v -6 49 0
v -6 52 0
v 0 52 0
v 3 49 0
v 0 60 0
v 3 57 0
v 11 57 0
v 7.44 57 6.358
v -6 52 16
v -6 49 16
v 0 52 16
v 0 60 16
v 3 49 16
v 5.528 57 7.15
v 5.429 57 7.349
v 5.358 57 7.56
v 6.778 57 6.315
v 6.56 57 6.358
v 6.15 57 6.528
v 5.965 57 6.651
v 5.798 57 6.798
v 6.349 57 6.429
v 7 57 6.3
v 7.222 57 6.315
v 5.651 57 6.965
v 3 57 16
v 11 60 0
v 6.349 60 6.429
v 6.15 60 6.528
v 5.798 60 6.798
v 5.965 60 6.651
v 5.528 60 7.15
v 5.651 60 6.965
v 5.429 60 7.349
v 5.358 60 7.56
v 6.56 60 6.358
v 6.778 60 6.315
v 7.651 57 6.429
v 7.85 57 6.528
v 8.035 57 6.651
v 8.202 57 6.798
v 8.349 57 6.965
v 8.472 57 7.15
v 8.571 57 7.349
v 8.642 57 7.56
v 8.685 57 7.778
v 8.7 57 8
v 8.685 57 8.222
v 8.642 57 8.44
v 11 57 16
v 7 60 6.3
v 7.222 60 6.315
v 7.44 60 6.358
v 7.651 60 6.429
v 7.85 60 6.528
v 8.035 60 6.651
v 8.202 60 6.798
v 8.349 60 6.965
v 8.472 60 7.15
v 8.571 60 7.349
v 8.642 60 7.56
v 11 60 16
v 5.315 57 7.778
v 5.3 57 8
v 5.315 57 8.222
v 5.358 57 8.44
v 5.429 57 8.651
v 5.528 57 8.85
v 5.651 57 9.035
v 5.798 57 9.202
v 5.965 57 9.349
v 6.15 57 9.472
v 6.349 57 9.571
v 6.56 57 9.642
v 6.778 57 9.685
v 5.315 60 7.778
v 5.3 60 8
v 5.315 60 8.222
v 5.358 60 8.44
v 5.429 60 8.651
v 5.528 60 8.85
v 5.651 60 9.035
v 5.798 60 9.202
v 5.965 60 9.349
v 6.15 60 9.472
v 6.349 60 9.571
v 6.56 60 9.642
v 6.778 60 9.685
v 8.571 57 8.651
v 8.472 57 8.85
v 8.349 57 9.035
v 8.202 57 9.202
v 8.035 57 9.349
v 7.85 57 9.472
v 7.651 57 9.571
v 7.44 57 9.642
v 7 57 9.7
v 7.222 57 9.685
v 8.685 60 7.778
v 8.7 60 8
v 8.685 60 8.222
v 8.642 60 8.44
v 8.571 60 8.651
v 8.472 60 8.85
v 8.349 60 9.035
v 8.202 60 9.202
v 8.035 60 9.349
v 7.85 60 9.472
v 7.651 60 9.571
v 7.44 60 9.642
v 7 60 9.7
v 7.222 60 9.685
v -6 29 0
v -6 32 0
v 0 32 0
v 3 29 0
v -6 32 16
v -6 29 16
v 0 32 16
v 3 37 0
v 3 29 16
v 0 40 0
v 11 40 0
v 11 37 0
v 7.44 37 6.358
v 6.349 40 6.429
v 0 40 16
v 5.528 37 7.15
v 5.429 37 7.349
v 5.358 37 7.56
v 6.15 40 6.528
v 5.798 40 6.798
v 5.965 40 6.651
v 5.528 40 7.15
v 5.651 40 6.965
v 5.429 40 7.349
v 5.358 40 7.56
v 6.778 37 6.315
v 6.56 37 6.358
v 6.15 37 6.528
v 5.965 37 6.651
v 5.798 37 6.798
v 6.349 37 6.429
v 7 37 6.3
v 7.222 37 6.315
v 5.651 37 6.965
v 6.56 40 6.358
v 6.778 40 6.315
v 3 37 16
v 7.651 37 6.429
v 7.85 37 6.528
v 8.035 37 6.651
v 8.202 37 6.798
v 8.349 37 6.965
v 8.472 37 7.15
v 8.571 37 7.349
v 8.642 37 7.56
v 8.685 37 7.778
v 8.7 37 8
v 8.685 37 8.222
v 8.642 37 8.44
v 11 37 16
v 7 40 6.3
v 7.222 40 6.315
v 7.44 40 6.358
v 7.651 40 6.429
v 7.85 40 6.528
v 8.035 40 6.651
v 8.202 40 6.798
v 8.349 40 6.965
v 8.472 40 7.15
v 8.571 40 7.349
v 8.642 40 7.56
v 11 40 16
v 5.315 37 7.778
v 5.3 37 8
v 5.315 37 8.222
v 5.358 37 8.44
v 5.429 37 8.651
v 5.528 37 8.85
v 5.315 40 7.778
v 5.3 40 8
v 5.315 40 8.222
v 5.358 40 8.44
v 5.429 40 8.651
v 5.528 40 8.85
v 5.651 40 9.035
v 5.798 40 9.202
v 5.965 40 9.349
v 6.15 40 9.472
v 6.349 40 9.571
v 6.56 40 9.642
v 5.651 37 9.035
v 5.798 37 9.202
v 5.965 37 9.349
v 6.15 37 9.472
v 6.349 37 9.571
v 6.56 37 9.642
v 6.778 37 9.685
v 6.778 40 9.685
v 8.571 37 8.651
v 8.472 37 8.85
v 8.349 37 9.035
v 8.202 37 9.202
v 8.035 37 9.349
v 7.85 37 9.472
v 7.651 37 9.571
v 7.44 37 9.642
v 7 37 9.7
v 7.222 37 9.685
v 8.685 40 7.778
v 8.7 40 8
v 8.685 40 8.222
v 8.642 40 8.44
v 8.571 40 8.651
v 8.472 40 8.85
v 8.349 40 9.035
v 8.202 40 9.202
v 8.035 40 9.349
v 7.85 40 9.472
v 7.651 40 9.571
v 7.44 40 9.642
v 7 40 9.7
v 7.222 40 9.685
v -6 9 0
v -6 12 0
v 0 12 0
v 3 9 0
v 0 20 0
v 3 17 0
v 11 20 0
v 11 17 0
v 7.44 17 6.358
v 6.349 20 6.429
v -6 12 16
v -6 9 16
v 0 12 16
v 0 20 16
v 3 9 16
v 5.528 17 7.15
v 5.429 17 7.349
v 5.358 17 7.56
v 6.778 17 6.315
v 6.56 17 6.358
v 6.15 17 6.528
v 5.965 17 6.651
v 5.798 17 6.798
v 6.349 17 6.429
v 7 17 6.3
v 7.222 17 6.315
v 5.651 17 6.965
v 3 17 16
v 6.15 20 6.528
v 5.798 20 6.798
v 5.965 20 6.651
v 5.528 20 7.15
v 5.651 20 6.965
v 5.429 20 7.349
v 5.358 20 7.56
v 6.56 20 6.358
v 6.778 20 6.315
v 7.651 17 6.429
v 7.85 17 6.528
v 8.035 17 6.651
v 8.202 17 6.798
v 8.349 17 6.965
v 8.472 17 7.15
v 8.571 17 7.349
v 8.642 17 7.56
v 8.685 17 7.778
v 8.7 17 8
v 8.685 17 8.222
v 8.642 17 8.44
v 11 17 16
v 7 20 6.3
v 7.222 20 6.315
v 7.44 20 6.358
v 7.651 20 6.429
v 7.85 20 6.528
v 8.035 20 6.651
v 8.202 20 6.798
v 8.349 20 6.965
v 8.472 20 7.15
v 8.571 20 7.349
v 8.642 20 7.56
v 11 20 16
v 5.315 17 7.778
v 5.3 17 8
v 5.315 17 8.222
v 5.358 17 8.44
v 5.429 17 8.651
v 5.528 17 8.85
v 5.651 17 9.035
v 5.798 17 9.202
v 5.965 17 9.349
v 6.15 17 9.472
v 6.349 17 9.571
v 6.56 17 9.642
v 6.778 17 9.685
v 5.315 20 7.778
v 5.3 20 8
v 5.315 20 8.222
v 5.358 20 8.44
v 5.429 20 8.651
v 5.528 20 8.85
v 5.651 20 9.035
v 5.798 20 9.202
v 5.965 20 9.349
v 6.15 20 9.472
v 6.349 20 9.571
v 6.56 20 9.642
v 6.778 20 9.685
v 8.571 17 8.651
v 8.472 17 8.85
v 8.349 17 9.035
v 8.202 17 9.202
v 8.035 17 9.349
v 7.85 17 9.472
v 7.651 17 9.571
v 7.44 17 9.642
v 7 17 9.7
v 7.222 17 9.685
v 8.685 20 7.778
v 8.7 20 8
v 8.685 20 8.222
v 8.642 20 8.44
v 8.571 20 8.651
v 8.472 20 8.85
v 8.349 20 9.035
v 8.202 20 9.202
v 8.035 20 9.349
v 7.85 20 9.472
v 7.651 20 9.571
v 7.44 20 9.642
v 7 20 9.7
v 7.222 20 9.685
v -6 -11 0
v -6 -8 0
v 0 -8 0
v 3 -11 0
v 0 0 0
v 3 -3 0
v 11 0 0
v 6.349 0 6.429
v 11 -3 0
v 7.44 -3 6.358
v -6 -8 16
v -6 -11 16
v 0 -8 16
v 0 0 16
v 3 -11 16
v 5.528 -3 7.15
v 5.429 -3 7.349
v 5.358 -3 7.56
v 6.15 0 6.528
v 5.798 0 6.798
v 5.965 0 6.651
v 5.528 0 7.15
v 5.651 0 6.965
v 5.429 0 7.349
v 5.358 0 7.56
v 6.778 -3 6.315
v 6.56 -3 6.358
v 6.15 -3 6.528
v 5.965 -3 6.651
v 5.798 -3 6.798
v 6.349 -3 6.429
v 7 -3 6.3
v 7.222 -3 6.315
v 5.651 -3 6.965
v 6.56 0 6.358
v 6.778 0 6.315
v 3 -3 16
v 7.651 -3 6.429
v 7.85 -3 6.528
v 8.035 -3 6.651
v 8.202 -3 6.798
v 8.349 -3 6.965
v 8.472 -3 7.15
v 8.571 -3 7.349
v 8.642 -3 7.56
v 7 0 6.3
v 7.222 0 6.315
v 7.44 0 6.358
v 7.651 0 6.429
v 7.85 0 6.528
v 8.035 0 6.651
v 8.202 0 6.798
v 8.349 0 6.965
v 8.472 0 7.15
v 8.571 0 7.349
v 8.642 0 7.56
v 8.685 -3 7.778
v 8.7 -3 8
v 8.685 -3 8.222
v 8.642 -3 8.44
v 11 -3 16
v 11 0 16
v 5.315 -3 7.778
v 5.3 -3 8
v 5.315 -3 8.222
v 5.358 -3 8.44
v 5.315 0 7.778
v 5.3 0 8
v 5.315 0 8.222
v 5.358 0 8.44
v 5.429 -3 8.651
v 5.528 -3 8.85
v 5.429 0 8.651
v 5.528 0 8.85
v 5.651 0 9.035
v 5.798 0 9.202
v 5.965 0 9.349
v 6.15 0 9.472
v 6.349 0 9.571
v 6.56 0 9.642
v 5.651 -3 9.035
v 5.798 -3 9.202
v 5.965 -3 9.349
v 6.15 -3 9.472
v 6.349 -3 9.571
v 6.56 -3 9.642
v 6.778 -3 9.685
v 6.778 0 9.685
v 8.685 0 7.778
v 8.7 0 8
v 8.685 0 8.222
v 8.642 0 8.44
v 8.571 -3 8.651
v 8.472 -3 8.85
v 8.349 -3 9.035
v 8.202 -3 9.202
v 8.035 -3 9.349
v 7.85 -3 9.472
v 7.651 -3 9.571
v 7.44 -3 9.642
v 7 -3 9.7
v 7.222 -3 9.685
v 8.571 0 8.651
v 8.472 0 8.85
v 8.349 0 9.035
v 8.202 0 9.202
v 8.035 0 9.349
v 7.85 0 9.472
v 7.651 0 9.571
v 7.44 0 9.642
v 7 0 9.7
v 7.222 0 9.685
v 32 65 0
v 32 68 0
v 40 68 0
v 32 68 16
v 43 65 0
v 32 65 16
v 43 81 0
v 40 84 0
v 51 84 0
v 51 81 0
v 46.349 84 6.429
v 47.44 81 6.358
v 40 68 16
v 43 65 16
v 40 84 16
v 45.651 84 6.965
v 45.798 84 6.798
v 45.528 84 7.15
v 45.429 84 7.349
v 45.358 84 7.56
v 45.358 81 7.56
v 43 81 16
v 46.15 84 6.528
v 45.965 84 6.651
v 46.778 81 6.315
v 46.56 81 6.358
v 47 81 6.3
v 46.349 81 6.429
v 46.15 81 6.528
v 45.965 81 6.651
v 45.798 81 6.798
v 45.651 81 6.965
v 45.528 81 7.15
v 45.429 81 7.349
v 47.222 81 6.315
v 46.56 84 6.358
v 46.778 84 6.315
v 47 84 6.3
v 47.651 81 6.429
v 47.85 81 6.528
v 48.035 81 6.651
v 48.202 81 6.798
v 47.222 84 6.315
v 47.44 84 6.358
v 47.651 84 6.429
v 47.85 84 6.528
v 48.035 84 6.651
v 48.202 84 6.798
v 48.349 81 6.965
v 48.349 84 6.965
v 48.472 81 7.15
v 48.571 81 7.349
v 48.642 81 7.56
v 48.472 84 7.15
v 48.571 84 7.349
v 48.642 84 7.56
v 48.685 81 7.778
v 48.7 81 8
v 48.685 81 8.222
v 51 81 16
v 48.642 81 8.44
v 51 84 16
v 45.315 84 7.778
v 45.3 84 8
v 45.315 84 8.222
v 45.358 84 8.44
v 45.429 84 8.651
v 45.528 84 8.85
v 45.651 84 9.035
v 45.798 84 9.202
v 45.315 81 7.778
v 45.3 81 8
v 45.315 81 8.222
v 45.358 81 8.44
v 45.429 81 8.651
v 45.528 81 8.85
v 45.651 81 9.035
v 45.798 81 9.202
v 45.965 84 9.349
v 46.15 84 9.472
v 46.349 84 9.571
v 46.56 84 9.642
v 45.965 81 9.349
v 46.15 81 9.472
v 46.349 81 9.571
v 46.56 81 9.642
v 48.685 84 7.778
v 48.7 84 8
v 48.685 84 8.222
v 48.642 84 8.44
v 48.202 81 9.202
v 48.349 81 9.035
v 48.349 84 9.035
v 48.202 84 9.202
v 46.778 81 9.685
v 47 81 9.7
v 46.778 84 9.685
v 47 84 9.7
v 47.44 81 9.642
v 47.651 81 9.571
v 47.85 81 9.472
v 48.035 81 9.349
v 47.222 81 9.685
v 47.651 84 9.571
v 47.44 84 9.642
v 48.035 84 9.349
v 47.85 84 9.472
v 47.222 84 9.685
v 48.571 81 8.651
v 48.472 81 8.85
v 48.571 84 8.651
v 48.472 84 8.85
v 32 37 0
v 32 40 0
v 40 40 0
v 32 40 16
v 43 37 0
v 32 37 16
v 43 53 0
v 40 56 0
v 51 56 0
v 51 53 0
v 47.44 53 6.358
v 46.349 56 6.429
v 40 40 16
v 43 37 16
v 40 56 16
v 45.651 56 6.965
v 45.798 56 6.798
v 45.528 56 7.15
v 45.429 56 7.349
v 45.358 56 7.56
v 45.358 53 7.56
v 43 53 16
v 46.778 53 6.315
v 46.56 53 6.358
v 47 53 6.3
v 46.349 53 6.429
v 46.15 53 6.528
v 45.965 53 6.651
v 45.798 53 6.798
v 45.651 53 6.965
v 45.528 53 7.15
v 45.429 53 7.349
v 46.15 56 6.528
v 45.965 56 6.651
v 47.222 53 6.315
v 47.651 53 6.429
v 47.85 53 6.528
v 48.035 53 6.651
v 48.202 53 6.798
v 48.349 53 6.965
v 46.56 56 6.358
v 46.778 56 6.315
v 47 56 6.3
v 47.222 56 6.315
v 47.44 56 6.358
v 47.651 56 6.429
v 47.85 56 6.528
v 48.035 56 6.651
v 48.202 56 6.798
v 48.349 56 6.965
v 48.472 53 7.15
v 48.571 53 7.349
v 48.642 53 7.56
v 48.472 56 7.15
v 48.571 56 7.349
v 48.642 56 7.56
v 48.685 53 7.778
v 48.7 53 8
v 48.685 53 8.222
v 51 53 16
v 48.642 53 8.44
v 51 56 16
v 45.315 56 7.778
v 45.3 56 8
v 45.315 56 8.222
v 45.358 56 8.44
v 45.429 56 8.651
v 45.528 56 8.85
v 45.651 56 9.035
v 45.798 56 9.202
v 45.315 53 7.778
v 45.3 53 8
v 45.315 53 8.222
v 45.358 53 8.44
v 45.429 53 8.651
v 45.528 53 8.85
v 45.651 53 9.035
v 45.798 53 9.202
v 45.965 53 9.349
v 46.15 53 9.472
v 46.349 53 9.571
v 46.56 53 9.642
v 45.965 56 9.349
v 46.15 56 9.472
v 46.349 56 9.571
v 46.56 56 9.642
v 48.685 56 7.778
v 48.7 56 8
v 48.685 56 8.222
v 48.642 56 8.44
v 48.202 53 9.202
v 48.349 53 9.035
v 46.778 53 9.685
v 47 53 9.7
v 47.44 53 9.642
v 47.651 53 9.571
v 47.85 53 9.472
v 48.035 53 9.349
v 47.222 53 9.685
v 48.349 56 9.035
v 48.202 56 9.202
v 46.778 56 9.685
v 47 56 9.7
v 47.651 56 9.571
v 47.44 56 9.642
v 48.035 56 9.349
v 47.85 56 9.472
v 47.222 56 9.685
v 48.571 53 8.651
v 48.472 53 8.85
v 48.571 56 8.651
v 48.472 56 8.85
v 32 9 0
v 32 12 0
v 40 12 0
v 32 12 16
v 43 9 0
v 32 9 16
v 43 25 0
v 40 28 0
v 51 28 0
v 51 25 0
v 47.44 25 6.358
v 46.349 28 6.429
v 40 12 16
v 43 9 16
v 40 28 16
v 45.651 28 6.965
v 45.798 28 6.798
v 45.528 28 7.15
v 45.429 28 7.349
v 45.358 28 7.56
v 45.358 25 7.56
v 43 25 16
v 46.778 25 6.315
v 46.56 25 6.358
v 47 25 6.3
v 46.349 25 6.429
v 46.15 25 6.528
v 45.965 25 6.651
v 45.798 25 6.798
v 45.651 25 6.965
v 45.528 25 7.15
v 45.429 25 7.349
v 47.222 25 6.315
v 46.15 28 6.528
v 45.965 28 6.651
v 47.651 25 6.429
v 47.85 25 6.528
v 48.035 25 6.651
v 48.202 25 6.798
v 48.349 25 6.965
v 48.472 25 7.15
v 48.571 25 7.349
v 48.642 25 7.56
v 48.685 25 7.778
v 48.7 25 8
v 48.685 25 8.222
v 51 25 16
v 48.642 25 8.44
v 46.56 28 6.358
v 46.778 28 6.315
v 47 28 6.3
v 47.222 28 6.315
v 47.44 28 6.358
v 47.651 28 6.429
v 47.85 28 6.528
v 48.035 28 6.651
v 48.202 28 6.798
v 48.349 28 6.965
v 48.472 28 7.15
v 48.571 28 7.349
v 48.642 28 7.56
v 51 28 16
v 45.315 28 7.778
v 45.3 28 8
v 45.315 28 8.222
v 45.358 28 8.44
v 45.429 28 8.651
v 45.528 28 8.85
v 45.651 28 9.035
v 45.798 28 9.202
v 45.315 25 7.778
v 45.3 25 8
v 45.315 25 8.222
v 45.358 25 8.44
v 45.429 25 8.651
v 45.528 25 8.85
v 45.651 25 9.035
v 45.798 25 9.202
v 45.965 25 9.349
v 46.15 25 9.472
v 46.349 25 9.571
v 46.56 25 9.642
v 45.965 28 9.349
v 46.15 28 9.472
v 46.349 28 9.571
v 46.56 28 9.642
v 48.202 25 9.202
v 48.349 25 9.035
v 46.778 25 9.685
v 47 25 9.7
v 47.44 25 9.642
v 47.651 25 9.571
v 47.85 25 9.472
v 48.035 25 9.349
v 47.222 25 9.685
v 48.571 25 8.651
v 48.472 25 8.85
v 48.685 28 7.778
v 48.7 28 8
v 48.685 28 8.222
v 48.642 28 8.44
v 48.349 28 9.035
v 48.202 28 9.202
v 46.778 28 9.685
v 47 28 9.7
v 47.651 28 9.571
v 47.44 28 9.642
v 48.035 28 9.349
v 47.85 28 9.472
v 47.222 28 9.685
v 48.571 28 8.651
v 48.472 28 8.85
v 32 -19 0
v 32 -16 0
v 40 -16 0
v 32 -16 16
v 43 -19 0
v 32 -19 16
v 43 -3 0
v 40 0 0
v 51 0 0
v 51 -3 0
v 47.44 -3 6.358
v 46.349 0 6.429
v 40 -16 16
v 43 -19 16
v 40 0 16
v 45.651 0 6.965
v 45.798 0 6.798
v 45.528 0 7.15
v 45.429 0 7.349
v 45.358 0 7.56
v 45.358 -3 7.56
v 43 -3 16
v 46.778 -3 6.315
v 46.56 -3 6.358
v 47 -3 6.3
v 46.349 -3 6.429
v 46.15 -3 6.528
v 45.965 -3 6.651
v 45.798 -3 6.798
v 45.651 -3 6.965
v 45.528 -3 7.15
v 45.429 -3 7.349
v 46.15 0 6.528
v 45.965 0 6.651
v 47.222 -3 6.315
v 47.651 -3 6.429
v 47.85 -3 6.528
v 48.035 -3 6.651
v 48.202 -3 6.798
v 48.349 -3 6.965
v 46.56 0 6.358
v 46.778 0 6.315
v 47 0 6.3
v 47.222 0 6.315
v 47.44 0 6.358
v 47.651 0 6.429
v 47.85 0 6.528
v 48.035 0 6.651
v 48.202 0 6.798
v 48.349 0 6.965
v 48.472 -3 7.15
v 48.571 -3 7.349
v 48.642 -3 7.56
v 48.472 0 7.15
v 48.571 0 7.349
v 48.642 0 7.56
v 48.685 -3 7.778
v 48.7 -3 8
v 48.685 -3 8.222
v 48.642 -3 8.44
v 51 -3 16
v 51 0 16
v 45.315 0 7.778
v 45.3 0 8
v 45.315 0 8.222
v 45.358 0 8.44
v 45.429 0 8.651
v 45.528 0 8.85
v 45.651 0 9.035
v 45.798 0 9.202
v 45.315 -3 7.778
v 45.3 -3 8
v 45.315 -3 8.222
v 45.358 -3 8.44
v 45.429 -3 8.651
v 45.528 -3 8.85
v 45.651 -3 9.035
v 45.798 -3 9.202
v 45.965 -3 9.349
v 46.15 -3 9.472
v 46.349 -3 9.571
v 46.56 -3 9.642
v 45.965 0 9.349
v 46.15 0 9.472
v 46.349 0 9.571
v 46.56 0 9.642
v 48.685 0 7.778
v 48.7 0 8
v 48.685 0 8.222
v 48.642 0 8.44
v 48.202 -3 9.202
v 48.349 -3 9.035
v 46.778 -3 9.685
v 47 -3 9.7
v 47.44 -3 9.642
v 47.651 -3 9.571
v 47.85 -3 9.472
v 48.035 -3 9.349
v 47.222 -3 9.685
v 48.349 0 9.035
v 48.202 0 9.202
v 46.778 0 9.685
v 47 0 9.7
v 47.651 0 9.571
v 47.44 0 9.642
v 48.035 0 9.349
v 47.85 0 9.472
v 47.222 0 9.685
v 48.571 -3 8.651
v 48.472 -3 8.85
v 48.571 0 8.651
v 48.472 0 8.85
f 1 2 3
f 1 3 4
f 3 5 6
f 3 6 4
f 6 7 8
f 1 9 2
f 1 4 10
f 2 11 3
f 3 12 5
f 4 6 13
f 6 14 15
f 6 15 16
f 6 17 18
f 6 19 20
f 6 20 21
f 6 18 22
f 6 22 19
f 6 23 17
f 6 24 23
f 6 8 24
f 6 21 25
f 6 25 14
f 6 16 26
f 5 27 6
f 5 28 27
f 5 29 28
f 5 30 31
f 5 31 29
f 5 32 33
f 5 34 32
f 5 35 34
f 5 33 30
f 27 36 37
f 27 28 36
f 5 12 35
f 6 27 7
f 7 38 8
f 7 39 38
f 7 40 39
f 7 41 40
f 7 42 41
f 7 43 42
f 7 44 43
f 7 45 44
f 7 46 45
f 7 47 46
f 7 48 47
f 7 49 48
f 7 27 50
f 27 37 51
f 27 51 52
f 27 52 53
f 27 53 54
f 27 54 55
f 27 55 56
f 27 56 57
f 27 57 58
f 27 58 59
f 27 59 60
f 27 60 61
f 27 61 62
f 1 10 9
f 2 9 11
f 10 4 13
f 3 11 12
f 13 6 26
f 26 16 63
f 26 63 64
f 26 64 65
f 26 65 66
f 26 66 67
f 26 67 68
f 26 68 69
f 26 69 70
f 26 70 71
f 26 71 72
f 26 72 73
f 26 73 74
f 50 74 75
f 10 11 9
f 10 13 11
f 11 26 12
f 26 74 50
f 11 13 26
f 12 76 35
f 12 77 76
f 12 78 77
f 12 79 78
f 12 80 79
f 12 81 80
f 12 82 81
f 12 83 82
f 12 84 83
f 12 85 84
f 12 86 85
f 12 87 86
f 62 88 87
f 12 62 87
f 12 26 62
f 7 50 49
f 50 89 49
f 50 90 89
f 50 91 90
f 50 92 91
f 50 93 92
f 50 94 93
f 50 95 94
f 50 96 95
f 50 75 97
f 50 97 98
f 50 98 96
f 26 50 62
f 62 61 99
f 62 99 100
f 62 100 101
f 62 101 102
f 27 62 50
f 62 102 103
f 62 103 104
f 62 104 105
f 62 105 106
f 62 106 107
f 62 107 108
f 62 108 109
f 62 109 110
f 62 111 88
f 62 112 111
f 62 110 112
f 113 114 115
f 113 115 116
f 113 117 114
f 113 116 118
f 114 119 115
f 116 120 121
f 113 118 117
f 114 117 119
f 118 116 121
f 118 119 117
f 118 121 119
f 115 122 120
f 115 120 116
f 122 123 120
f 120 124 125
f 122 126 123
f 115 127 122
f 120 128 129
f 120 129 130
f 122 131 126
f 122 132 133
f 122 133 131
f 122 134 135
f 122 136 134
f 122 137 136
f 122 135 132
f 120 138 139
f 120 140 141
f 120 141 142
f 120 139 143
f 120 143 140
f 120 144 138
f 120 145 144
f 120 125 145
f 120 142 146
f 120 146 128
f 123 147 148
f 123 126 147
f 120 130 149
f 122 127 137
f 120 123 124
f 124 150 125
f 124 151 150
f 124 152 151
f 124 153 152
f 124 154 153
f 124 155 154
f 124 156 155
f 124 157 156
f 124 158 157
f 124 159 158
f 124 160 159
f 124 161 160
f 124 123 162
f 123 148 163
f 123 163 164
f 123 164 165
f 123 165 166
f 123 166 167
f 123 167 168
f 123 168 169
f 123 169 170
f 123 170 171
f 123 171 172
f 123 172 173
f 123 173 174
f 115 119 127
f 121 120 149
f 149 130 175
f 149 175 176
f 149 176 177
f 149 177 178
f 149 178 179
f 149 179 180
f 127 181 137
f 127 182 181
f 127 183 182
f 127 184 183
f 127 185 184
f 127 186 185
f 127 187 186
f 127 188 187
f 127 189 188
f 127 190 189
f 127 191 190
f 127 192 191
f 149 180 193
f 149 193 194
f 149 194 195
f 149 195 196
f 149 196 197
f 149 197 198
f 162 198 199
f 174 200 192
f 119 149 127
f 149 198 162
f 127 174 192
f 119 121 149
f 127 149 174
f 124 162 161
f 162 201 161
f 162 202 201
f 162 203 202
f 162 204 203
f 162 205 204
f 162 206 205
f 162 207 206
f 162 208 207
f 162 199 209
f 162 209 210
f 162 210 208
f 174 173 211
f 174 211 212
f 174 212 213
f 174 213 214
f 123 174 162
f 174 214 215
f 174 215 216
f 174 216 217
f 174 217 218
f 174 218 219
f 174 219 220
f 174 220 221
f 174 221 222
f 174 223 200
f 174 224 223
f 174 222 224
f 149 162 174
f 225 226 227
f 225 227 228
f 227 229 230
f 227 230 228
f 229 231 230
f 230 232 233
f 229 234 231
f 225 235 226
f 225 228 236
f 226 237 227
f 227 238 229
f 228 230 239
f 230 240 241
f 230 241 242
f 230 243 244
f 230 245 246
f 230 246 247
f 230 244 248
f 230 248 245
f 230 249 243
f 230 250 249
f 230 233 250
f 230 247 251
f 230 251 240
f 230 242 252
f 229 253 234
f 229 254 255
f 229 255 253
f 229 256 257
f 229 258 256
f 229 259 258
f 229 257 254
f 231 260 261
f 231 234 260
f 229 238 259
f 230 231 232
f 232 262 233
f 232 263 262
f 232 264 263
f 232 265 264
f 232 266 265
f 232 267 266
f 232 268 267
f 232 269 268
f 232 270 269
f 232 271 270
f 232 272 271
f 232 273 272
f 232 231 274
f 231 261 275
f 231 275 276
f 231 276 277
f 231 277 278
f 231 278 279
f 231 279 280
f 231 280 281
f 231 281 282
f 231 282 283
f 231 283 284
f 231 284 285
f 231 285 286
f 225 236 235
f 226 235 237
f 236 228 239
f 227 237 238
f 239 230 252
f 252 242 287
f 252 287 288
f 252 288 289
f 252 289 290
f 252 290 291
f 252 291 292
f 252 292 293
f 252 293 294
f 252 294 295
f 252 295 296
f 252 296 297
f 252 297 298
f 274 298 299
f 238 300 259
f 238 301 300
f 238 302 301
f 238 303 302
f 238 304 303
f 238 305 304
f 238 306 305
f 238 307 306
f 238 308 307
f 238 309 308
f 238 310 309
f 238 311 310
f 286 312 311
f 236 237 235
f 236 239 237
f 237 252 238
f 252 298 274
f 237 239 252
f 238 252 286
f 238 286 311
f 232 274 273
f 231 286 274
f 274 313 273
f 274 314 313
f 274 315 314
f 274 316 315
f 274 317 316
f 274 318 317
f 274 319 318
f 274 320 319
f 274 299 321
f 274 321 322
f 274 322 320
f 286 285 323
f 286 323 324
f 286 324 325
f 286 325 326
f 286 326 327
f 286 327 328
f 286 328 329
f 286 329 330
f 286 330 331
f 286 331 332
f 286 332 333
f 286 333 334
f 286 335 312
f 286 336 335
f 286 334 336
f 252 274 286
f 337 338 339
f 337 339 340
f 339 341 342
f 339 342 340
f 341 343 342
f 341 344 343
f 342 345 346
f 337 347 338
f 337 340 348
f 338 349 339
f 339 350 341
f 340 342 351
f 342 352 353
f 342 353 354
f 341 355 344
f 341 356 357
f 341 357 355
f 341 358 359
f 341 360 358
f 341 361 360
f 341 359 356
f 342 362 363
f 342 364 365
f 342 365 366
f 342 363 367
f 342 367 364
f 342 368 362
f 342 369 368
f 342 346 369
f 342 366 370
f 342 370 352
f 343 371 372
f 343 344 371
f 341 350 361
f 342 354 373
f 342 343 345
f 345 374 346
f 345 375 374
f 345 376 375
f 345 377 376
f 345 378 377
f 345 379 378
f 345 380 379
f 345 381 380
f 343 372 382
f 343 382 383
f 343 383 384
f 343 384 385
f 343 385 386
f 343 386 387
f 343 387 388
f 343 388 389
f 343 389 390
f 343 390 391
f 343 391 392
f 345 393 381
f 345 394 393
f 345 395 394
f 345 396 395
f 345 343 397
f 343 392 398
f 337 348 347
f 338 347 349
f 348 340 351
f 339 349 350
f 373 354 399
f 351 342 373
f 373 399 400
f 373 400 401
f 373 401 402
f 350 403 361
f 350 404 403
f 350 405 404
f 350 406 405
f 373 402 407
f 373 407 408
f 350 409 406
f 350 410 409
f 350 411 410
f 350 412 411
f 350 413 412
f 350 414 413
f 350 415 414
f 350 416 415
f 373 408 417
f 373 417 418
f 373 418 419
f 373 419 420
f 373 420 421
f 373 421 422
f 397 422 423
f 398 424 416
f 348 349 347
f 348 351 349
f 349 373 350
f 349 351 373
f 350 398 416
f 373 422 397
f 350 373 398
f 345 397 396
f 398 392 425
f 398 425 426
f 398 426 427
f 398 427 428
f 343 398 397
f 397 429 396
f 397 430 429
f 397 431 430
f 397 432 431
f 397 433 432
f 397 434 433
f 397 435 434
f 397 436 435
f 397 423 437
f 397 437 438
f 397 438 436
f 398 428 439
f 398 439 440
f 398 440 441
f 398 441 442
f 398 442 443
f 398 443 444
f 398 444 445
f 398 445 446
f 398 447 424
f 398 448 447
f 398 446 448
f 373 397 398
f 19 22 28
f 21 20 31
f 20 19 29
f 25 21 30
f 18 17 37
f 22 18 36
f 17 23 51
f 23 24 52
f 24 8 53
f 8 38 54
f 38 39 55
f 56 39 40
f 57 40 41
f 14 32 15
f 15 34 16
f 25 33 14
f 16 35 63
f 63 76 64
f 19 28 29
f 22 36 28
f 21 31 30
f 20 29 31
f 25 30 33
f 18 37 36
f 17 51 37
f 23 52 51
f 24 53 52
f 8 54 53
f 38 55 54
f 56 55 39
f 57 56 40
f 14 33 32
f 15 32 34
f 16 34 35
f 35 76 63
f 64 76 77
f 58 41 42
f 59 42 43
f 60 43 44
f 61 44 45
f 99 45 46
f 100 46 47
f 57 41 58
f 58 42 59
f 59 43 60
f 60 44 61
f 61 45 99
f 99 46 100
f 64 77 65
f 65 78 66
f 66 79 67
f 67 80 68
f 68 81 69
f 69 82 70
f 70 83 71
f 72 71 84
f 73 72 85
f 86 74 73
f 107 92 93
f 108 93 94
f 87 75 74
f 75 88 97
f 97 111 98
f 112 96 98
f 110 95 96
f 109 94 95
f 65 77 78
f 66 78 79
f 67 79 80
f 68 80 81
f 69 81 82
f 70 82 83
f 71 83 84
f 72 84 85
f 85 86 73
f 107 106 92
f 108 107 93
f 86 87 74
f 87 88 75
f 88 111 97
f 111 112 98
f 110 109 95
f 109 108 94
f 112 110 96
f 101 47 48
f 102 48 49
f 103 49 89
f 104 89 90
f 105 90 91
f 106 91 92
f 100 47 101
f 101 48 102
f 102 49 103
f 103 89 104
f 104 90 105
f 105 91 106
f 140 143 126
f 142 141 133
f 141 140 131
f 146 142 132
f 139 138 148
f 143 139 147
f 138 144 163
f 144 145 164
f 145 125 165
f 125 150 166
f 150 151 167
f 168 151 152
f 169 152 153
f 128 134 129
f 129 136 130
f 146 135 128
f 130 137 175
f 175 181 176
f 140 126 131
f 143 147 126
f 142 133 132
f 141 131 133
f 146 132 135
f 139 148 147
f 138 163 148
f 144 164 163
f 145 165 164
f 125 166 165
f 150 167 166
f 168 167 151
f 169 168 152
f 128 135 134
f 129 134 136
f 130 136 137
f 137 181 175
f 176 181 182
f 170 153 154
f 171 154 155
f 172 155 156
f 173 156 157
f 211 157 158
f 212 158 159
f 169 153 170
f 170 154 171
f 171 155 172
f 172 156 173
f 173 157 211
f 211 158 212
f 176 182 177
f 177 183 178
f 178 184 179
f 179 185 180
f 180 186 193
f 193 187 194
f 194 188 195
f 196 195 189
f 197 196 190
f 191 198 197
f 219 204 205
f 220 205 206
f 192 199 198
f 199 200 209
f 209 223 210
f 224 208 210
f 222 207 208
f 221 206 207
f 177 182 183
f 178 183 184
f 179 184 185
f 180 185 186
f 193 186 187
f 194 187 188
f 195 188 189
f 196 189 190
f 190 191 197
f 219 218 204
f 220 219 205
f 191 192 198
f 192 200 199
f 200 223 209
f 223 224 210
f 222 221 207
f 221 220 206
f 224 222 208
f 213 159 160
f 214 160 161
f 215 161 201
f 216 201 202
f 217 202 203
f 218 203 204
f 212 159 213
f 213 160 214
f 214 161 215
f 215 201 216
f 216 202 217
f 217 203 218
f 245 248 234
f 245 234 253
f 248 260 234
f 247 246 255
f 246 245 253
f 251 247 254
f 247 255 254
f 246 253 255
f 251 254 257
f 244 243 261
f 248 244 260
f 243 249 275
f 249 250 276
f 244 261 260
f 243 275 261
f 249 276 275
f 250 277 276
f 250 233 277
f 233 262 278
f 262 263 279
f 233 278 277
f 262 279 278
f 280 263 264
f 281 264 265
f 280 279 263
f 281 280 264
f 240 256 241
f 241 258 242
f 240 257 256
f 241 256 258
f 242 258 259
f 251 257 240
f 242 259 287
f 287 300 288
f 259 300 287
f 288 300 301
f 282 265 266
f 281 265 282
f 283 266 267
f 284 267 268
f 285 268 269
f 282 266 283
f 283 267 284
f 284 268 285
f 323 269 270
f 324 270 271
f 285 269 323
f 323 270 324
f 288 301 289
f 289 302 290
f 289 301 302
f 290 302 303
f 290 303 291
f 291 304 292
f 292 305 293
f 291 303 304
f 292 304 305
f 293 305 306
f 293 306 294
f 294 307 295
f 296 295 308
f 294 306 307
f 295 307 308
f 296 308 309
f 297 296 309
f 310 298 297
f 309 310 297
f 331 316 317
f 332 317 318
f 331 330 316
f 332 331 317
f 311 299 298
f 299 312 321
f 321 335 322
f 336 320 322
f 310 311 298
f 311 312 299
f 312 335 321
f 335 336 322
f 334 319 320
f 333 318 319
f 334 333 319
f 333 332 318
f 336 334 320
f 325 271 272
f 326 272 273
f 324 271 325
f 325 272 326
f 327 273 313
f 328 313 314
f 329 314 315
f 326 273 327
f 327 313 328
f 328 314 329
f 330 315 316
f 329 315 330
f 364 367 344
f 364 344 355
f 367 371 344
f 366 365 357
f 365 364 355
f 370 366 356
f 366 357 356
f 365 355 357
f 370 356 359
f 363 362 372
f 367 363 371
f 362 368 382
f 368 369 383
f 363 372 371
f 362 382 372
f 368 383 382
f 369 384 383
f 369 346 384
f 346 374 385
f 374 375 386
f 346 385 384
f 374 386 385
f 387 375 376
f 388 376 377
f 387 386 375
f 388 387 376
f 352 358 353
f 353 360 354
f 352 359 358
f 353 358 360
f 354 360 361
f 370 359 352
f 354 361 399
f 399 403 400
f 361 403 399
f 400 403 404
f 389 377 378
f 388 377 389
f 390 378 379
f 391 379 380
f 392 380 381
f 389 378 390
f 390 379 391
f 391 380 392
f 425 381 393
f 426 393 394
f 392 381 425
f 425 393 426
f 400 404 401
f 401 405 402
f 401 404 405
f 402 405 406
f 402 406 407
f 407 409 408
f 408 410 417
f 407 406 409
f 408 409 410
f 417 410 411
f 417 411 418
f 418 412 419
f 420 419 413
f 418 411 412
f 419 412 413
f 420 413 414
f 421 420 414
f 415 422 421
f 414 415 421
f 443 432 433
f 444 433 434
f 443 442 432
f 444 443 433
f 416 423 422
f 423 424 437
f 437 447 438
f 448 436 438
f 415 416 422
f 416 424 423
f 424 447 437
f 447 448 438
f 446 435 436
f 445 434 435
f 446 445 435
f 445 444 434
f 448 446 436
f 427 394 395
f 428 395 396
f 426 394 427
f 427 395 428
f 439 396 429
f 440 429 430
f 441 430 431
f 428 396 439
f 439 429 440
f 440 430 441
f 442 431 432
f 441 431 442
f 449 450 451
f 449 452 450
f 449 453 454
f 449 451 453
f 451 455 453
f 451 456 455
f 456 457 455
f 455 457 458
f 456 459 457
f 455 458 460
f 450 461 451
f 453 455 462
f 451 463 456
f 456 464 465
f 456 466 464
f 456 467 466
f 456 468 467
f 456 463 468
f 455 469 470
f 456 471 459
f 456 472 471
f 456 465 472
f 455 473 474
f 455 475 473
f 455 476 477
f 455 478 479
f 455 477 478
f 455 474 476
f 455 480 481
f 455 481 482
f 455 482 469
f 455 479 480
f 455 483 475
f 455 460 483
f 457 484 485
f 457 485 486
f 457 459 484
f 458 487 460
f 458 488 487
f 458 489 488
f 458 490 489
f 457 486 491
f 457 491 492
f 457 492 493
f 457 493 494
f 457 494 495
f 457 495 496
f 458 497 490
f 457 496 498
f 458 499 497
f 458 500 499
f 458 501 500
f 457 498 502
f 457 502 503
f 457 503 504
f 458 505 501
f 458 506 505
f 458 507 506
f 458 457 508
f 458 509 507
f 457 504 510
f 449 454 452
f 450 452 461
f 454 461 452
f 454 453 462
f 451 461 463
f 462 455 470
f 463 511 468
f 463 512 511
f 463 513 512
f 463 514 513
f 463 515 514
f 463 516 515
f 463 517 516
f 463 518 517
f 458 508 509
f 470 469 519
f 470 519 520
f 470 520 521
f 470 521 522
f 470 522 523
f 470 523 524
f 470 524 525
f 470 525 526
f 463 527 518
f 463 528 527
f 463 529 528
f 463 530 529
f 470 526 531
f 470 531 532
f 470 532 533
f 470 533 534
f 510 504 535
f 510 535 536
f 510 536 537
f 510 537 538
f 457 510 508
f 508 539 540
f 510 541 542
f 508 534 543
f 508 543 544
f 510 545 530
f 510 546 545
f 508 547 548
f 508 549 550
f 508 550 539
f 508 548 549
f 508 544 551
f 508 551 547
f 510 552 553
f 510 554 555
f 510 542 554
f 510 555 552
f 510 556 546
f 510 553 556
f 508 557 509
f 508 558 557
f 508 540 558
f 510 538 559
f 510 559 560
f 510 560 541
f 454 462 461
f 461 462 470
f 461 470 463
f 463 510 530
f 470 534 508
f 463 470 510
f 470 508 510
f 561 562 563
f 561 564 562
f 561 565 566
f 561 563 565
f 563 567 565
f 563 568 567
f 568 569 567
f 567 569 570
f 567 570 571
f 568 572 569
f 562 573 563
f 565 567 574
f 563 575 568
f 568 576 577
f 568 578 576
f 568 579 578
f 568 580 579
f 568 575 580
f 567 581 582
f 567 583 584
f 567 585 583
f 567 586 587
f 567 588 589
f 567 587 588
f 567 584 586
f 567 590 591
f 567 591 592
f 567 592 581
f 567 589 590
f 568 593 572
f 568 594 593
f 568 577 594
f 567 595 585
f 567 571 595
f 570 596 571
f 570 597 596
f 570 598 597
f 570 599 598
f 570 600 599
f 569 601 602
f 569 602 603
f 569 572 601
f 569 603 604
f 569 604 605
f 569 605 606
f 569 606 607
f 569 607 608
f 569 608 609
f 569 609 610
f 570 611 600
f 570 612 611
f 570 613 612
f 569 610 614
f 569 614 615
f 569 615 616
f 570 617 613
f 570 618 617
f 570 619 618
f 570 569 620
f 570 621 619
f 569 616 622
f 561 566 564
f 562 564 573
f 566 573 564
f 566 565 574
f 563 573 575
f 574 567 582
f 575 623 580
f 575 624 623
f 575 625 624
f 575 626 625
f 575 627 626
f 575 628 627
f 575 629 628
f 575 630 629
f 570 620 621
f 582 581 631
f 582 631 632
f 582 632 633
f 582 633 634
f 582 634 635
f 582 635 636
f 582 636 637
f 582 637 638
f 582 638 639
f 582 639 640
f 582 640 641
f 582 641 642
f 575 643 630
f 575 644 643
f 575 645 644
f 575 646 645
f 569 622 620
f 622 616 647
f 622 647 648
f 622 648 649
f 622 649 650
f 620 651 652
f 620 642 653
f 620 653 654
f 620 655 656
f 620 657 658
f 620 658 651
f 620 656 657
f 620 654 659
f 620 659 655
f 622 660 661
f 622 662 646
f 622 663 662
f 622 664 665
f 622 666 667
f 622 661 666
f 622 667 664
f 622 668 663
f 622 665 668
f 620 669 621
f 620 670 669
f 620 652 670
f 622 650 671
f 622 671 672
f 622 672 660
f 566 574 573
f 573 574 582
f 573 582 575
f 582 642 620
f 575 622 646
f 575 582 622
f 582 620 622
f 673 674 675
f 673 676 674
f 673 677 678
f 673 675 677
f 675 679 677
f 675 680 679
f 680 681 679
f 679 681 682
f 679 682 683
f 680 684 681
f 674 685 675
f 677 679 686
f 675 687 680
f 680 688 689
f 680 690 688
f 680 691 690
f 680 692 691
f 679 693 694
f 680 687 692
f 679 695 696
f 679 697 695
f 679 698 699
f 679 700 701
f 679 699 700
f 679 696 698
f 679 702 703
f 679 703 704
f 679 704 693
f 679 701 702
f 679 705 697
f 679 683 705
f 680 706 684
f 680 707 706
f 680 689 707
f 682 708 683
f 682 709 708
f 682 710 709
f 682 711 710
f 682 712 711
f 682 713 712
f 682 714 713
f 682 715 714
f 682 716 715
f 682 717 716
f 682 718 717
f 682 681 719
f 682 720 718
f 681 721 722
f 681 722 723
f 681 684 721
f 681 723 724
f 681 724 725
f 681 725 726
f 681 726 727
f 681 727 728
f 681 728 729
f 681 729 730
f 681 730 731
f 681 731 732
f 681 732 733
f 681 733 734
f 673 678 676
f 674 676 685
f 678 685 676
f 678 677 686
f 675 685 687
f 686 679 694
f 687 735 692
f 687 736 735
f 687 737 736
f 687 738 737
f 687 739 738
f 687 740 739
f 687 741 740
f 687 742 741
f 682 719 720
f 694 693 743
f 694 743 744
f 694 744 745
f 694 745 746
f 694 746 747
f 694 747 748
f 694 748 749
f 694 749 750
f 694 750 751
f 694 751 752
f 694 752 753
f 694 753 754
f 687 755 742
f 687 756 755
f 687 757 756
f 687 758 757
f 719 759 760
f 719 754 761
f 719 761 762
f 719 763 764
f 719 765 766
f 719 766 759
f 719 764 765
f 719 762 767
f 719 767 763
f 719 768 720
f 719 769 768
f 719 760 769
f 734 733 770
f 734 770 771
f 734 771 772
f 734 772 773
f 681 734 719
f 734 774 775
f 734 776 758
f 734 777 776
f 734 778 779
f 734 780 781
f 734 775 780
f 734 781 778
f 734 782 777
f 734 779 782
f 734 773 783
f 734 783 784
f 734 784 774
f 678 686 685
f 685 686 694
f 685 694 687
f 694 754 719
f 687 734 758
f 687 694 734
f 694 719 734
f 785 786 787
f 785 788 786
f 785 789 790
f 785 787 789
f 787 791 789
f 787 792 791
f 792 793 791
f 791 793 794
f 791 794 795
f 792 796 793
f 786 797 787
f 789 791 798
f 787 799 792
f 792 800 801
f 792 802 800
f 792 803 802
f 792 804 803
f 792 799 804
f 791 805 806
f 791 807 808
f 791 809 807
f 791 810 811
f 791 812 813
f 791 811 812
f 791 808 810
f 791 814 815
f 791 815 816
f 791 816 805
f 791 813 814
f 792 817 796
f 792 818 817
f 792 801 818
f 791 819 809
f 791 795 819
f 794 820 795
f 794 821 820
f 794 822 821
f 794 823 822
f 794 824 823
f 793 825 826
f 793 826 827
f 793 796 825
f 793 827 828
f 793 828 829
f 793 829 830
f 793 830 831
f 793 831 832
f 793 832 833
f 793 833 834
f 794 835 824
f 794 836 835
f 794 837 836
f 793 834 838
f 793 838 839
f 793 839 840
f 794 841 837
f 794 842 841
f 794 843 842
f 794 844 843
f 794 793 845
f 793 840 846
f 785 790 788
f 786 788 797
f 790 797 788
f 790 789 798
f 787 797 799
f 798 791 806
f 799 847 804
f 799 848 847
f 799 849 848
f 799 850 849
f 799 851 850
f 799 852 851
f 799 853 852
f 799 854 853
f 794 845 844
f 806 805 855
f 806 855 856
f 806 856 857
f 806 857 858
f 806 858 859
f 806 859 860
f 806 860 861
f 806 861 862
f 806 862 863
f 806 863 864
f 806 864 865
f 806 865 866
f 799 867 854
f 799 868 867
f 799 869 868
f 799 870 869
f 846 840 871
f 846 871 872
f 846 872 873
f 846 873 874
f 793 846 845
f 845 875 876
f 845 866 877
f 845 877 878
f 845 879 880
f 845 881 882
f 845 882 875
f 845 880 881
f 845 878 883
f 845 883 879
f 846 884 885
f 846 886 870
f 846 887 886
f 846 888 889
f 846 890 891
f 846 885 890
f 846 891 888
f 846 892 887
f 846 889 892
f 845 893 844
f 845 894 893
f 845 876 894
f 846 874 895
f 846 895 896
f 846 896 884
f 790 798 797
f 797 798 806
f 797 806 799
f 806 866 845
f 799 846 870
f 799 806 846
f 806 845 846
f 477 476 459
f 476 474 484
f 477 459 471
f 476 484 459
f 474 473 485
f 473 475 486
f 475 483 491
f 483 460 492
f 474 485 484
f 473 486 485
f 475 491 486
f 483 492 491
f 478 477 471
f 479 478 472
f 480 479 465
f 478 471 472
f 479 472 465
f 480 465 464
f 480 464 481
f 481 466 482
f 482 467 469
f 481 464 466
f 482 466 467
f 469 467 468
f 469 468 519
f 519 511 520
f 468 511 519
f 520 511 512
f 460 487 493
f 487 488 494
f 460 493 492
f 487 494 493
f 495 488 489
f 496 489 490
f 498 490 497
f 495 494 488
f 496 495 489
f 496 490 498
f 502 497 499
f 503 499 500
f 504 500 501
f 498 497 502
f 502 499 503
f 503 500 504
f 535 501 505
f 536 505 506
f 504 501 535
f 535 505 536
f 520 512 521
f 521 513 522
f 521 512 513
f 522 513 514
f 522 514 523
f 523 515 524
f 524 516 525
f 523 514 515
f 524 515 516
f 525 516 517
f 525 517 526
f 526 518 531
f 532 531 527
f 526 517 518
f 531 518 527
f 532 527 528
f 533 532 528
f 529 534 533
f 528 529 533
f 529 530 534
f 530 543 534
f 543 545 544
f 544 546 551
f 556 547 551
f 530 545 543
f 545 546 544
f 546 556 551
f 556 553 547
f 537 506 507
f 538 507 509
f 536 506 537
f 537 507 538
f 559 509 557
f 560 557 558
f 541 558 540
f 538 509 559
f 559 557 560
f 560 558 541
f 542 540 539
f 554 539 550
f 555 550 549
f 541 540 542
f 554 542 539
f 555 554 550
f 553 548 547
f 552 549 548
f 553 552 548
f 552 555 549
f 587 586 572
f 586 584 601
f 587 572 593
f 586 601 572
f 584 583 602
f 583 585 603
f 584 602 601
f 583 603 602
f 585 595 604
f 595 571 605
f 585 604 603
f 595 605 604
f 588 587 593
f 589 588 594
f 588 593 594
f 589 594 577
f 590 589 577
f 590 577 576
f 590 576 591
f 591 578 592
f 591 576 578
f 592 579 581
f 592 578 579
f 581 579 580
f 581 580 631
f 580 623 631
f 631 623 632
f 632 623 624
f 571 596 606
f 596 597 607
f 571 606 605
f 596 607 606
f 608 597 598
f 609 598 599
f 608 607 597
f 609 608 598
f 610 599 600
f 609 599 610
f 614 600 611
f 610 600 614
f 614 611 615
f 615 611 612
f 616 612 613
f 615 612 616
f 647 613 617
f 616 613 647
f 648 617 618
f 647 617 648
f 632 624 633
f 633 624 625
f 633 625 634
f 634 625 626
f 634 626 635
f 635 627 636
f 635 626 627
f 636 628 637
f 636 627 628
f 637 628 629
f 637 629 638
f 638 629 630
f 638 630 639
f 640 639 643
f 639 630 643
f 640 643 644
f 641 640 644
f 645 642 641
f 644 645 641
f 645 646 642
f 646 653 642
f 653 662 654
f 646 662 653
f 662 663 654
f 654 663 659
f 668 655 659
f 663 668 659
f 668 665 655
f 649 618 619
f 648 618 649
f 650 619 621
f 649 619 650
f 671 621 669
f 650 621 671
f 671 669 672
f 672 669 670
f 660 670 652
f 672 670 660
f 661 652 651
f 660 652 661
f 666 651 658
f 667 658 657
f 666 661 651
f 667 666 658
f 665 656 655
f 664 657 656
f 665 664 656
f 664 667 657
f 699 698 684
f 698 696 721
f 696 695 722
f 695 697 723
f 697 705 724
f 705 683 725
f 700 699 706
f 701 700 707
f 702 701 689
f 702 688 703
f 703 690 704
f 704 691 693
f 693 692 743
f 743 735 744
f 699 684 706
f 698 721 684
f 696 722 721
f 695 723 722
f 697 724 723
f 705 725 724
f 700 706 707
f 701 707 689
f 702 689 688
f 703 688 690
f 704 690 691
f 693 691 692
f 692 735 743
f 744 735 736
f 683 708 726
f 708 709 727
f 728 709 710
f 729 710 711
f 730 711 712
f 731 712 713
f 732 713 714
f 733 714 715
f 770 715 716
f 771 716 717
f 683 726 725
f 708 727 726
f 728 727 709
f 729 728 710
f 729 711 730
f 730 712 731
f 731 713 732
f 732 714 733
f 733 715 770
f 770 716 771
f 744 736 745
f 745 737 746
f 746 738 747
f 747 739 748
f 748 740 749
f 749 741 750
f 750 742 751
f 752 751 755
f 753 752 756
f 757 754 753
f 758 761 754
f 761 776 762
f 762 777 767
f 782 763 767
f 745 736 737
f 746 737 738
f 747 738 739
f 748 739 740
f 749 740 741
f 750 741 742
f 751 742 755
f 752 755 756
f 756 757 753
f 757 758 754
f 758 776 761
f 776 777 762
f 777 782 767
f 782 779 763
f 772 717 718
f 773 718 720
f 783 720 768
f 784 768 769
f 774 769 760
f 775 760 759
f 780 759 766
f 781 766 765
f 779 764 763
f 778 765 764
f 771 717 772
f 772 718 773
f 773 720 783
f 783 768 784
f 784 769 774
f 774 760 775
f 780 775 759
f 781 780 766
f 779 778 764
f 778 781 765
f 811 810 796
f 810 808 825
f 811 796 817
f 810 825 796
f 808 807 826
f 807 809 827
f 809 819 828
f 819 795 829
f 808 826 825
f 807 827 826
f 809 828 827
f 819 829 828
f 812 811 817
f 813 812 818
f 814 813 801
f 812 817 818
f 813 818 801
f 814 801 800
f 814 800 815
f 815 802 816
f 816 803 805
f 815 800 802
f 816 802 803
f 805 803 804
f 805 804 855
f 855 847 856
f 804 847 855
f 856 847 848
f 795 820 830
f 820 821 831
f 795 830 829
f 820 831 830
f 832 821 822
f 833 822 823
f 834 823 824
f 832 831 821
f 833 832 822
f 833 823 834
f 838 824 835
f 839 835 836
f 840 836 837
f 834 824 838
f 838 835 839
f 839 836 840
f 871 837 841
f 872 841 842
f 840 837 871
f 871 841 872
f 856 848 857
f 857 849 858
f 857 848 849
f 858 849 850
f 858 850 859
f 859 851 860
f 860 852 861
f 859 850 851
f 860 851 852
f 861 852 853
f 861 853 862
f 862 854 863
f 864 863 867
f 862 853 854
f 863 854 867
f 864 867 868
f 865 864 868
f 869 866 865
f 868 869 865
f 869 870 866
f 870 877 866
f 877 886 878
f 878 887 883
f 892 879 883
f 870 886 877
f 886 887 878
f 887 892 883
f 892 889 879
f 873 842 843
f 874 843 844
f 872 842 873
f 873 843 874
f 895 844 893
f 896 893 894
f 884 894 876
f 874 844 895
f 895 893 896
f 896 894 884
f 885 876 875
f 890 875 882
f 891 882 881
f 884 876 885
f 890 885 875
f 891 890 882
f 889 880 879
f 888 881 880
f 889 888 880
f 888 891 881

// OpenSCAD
// file: ../lib/bracket_ring.scad
// Printables "Apache 3800 Panel Bracket" ring (JohnS - N0CTL, CC BY 4.0),
// approximated from ref/apache-3800-panel-bracket-v8.step for fit checks.
// Gamma profile: a 12 mm-wide lip on top (plate rests on it, M3 inserts),
// then a 5 mm strip down the case wall. z = 0 is the lip top (plate underside).
// Values live here because they describe the bracket, not our design.

bracket_outer   = [380, 270, 17];   // at the case wall: [x, y, corner_r]
bracket_lip     = [356, 246, 5];    // lip inner face (±178, ±123), inner corner r
bracket_strip   = [370, 260, 15];   // wall-strip inner face (±185, ±130)
bracket_lip_t   = 7;
bracket_h       = 17;

module bracket_ring(holes = []) {
    difference() {
        union() {
            translate([0, 0, -bracket_lip_t]) linear_extrude(bracket_lip_t) difference() {
                rrect(bracket_outer[0], bracket_outer[1], bracket_outer[2]);
                rrect(bracket_lip[0], bracket_lip[1], bracket_lip[2]);
            }
            translate([0, 0, -bracket_h]) linear_extrude(bracket_h - bracket_lip_t + 0.01) difference() {
                rrect(bracket_outer[0], bracket_outer[1], bracket_outer[2]);
                rrect(bracket_strip[0], bracket_strip[1], bracket_strip[2]);
            }
        }
        for (p = holes) translate([p[0], p[1], -bracket_lip_t - 1]) cylinder(d = 4, h = bracket_lip_t + 2);
    }
}
// file: ../lib/common.scad
// Shared helpers. Parts do: include <../lib/common.scad>
include <../config.scad>

BIG = 2000;

function preset(name, table) = table[search([name], table)[0]][1];

// ---------- 2D / basic solids ----------
module rrect(l, w, r) {
    r2 = max(min(r, l/2 - 0.01, w/2 - 0.01), 0.01);
    offset(r = r2) square([l - 2*r2, w - 2*r2], center = true);
}

module plate(l, w, r, t) linear_extrude(t) rrect(l, w, r);

// Countersunk M3 through-hole, head on the top face (z = t).
module m3_csk(t) {
    h = (m3_csk_d - m3_clear_d) / 2;
    translate([0, 0, -1]) cylinder(d = m3_clear_d, h = t + 2);
    translate([0, 0, t - h]) cylinder(d1 = m3_clear_d, d2 = m3_csk_d, h = h + 0.01);
    translate([0, 0, t]) cylinder(d = m3_csk_d, h = 1);
}

// ---------- Base faceplate outline: sized to the bracket ring it sits on ----------
include <bracket_ring.scad>
base_L = bracket_outer[0] - 2 * panel_gap;
base_W = bracket_outer[1] - 2 * panel_gap;
base_R = max(bracket_outer[2] - panel_gap, 1);

// ---------- Keyboard opening + hangers (shared by faceplate and hanger part) ----------
kb_cutout = [kb_size[0] + 2 * kb_clear, kb_size[1] + 2 * kb_clear];
kb_front_y = kb_offset[1] - kb_cutout[1] / 2;
kb_back_y  = kb_offset[1] + kb_cutout[1] / 2;
// Ledge top below the plate underside, [front, back].
kb_ledge_z = [kb_top_drop + kb_floor_depth - panel_t, kb_top_drop + kb_hump_depth - panel_t];
kb_bolt_v  = kb_hanger_t + (kb_hanger_flange - kb_hanger_t) / 2;   // bolt, outward from the opening edge
// Hanger bolt positions on the plate: front row then back row.
function kb_hanger_bolts() = concat(
    [for (x = kb_hanger_x) [kb_offset[0] + x, kb_front_y - kb_bolt_v]],
    [for (x = kb_hanger_x) [kb_offset[0] + x, kb_back_y  + kb_bolt_v]]
);

// ---------- Splitting oversized panels into lap-jointed tiles ----------
// Seams evenly spaced so each tile (+ margin) fits the bed.
function n_tiles(len, axis_bed) = max(1, ceil(len / (axis_bed - bed_margin)));
function seams(len, n) = n <= 1 ? [] : [for (k = [1 : n - 1]) -len/2 + k * len / n];

// Pick the bed orientation that needs fewer tiles.
function auto_split(l, w) =
    let(a = [n_tiles(l, bed[0]), n_tiles(w, bed[1])],
        b = [n_tiles(l, bed[1]), n_tiles(w, bed[0])])
    (a[0] * a[1] <= b[0] * b[1]) ? a : b;

function resolve_seams(spec, len, n_auto) = spec == "auto" ? seams(len, n_auto) : spec;

// Range of tile k along one axis. s shifts the seams (+lap/2 for the back
// half, -lap/2 for the front half) so neighbours overlap as a half-lap.
function lo(b, k, s) = k == 0 ? -BIG : b[k - 1] + s;
function hi(b, k, s) = k == len(b) ? BIG : b[k] + s;

module tile_mask(xs, ys, i, j, t) {
    // [z_from, z_to, seam_shift]
    for (layer = [[-BIG/2, t/2, lap_w/2], [t/2, BIG/2, -lap_w/2]]) {
        s = layer[2];
        x0 = lo(xs, i, s); x1 = hi(xs, i, s);
        y0 = lo(ys, j, s); y1 = hi(ys, j, s);
        translate([x0, y0, layer[0]]) cube([x1 - x0, y1 - y0, layer[1] - layer[0]]);
    }
}

// Evenly spaced points along a seam of length len, always including one
// seam_edge_inset from each panel edge (narrow bezels still get screwed).
function seam_line(len) =
    let(span = len - 2 * seam_edge_inset, n = max(1, round(span / seam_hole_pitch)))
    [for (k = [0 : n]) -span / 2 + k * span / n];

function in_rect(p, r) = abs(p[0] - r[0]) < r[2] / 2 && abs(p[1] - r[1]) < r[3] / 2;
function in_any(p, rects) = len([for (r = rects) if (in_rect(p, r)) 1]) > 0;

// Keep-out box around each point (e.g. mount holes): [cx, cy, size, size].
function point_keepouts(pts, size = 16) = [for (p = pts) [p[0], p[1], size, size]];

// Screw positions along every seam (centre of the lap band), minus any
// that fall in a keep-out rect [cx, cy, w, h] (windows, cutouts, mounts).
function seam_holes(xs, ys, l, w, keep = []) = [
    for (p = concat([for (x = xs) for (y = seam_line(w)) [x, y]],
                    [for (y = ys) for (x = seam_line(l)) [x, y]]))
        if (!in_any(p, keep)) p
];

// Seam hardware: countersunk M3 from the front, hex-nut pocket on the back.
module seam_screw(t) {
    m3_csk(t);
    translate([0, 0, -1]) rotate(30) cylinder(d = m3_nut_af / cos(30), h = 1 + 1.2, $fn = 6);
}

// Render one tile [i, j], every tile exploded ("all"), or the unsplit part
// ("whole"). children(0) = the whole panel solid.
module tiled(piece, xs, ys, t, gap = 15) {
    nx = len(xs) + 1; ny = len(ys) + 1;
    echo(str("TILES ", nx, " ", ny));
    if (piece == "whole") children();
    else if (piece == "all")
        for (i = [0 : nx - 1], j = [0 : ny - 1])
            translate([i * gap, j * gap, 0])
                intersection() { children(); tile_mask(xs, ys, i, j, t); }
    else
        intersection() { children(); tile_mask(xs, ys, piece[0], piece[1], t); }
}
// main file
// Keyboard hangers: bolt under the base faceplate at the edge of the keyboard
// opening; a foot reaches under the keyboard so it sits flush with the plate.
// Front hangers support the flat underside, back hangers the battery hump.
// Fasten with M3 countersunk screws from the plate top + nut under the flange.
//
// Profile (side view, v = outward from the opening, z = down from plate):
//      opening edge
//   foot |leg| flange
//          ___________
//         |  |  o     |   <- plate underside, bolt at kb_bolt_v
//         |  |‾‾‾‾‾‾‾‾
//    _____|  |
//   |________|            <- ledge top at kb_ledge_z
//
// Modelled lying on the profile face so it prints without supports.
include <../lib/common.scad>

module kb_hanger_profile(depth, foot) {
    t = kb_hanger_t;
    union() {
        translate([0, -t]) square([kb_hanger_flange, t]);          // flange
        translate([0, -depth]) square([t, depth]);                 // leg
        translate([-foot, -depth - t]) square([foot + t, t]);      // foot
    }
}

module kb_hanger(depth, foot) {
    w = kb_hanger_w;
    difference() {
        linear_extrude(w) kb_hanger_profile(depth, foot);
        // bolt hole through the flange, nut sits under it
        translate([kb_bolt_v, 1, w / 2]) rotate([90, 0, 0]) cylinder(d = m3_clear_d, h = kb_hanger_t + 2);
    }
}

n = len(kb_hanger_x);
for (k = [0 : n - 1]) {
    translate([0, k * (kb_ledge_z[0] + 12), 0]) kb_hanger(kb_ledge_z[0], kb_hanger_foot[0]);
    translate([40, k * (kb_ledge_z[1] + 12), 0]) kb_hanger(kb_ledge_z[1], kb_hanger_foot[1]);
}
echo(str("KB hangers: ", n, " front (ledge ", kb_ledge_z[0], " mm), ", n, " back (ledge ", kb_ledge_z[1], " mm)"));
